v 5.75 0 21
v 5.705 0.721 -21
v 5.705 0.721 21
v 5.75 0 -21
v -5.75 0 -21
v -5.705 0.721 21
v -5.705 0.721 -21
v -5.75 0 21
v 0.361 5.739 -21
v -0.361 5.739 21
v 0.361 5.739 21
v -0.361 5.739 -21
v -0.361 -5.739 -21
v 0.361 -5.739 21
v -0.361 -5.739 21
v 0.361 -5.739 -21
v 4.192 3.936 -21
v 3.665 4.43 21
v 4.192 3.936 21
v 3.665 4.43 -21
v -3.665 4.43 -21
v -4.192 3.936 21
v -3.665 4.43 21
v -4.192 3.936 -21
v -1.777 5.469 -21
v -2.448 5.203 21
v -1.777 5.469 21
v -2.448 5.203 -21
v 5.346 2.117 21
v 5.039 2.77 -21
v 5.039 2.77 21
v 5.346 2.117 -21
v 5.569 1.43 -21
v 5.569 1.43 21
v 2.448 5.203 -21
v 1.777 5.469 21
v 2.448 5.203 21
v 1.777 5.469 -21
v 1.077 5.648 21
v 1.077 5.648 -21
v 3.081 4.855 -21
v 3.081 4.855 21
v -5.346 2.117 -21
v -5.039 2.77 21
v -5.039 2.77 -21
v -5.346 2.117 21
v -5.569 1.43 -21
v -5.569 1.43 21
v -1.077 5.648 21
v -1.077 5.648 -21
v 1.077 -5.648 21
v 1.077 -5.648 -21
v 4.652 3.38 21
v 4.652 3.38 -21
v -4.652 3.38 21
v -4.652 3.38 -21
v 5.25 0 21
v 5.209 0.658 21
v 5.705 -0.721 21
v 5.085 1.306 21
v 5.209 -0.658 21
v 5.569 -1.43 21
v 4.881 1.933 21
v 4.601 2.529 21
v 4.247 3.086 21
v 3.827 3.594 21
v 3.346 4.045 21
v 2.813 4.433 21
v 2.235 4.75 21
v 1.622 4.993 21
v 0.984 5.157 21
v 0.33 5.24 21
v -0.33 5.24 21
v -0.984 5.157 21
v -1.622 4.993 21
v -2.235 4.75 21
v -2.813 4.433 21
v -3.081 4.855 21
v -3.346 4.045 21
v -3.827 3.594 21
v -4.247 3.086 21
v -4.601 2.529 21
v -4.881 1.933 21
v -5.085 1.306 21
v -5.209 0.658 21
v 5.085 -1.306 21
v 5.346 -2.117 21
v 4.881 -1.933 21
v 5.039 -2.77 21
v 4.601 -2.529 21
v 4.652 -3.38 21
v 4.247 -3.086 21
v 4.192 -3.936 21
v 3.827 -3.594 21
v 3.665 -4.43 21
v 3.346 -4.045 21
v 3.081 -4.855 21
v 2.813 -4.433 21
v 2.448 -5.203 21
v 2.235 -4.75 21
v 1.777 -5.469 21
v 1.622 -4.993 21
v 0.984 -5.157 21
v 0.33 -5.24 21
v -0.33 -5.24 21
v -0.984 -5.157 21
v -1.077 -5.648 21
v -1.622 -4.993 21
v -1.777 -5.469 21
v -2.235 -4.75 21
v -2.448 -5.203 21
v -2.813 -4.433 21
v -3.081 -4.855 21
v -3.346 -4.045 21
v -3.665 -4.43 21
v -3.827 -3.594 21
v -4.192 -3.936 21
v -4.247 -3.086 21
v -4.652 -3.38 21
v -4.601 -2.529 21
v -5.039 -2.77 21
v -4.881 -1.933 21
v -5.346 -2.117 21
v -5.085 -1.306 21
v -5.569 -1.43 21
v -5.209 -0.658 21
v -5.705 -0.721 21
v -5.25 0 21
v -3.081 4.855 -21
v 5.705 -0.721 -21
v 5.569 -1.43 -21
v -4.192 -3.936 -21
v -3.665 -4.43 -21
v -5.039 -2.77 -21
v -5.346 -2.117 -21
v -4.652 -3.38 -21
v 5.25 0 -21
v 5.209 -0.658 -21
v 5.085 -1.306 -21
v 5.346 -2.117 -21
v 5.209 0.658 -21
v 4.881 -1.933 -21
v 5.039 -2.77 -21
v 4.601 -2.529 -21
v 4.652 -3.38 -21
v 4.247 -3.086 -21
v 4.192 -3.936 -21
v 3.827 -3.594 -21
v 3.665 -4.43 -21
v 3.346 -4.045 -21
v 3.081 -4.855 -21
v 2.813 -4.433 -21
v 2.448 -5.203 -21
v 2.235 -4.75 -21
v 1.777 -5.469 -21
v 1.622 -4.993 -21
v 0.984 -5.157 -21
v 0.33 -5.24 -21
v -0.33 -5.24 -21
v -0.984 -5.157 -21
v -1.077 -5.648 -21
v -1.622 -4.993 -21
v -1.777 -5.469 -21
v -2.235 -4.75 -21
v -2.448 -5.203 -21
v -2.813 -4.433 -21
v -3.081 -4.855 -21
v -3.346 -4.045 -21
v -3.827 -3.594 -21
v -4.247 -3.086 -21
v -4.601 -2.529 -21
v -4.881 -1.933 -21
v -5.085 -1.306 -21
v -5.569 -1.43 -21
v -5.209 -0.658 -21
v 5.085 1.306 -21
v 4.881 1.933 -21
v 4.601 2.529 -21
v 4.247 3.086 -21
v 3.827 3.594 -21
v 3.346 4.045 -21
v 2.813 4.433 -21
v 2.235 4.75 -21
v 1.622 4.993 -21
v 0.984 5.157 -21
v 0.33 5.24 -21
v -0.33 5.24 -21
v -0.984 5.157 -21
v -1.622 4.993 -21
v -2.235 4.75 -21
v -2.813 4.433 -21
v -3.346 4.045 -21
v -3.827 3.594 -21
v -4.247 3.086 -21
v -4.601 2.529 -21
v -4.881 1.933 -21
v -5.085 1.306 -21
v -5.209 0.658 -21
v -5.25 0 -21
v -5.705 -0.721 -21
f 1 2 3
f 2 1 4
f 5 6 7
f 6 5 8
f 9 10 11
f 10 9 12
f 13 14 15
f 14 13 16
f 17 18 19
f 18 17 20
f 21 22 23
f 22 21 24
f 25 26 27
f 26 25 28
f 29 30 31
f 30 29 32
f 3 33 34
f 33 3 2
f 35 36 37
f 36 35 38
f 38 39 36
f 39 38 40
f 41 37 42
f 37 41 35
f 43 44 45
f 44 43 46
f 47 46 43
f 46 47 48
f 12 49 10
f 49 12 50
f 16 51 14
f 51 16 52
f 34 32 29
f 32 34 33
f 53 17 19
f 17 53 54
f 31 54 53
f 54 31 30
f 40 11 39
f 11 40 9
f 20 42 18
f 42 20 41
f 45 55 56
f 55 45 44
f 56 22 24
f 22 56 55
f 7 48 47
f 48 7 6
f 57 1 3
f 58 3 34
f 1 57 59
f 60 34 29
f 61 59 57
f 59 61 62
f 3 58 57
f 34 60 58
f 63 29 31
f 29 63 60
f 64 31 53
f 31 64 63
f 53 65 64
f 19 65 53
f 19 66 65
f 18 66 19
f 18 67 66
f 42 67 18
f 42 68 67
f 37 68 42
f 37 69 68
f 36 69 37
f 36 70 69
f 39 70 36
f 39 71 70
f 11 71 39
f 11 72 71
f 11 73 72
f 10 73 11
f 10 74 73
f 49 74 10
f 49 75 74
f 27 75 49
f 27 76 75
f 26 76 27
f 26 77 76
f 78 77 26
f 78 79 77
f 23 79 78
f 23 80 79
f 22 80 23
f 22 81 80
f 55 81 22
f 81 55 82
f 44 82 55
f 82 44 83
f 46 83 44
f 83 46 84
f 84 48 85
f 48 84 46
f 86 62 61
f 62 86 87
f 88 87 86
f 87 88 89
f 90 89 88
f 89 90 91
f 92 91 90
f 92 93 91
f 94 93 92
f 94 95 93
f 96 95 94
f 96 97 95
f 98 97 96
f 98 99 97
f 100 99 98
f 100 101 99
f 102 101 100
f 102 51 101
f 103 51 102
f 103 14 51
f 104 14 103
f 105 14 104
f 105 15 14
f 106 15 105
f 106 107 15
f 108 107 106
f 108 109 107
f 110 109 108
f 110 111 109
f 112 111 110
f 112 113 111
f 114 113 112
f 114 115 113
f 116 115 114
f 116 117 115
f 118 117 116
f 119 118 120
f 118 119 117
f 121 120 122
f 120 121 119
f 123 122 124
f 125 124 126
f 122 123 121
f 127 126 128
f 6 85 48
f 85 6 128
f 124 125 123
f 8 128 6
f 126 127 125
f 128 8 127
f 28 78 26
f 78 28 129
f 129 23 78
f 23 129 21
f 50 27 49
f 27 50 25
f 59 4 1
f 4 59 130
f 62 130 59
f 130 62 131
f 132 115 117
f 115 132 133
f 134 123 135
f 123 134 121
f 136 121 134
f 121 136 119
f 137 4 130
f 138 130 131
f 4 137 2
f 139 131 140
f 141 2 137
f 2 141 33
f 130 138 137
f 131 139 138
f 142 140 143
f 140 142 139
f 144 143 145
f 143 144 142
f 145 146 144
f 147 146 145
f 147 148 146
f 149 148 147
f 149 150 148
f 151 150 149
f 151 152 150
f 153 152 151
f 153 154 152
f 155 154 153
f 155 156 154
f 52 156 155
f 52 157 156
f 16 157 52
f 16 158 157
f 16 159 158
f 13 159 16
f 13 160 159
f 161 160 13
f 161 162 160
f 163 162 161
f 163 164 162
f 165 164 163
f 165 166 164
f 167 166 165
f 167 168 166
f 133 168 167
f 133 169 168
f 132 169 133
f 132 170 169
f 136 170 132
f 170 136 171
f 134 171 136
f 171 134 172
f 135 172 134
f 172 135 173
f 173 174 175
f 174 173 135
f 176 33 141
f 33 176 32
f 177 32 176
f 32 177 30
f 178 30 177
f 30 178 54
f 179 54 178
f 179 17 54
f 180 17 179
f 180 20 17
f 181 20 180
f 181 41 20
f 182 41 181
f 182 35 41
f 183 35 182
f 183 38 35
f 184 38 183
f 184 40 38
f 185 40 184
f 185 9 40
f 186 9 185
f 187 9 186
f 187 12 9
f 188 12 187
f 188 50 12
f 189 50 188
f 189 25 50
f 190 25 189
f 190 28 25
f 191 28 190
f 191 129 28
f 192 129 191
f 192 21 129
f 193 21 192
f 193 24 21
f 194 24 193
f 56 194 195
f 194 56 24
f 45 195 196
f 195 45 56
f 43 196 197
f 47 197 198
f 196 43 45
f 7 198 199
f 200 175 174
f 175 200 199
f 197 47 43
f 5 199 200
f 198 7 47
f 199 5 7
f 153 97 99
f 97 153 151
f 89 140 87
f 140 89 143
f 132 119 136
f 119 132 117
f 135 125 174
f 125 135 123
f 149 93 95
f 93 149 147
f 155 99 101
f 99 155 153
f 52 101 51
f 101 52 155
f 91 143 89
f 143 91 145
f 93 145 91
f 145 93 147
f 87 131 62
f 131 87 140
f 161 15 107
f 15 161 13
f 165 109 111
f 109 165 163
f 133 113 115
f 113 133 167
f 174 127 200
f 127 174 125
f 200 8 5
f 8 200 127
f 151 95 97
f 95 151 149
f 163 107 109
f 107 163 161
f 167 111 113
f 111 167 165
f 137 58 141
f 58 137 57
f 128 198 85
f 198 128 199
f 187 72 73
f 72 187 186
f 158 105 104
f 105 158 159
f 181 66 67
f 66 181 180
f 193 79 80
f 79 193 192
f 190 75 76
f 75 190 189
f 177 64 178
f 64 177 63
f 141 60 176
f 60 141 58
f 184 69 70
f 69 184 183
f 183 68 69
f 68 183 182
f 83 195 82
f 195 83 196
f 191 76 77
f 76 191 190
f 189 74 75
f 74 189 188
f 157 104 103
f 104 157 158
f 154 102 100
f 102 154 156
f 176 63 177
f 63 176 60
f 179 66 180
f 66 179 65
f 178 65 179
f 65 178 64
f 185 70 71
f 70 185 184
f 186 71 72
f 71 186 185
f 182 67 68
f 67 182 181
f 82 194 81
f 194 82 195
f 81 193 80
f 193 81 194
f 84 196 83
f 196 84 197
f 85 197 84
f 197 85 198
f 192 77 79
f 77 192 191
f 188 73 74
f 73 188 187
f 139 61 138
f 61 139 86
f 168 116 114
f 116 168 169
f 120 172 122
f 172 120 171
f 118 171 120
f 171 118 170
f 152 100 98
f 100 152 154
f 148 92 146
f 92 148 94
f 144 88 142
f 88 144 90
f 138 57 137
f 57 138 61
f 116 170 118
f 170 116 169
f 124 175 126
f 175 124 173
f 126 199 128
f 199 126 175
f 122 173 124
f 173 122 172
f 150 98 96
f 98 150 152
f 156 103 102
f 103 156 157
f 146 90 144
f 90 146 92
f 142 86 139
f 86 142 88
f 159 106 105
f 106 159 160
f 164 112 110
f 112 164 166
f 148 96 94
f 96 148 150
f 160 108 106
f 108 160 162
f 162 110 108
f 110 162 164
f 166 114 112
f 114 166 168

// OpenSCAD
$fn = 50;


difference() {
	union() {
		translate(v = [0, 0, -21.0000000000]) {
			cylinder(h = 42, r = 5.7500000000);
		}
	}
	union() {
		translate(v = [0, 0, -100.0000000000]) {
			cylinder(h = 200, r = 5.2500000000);
		}
	}
}
